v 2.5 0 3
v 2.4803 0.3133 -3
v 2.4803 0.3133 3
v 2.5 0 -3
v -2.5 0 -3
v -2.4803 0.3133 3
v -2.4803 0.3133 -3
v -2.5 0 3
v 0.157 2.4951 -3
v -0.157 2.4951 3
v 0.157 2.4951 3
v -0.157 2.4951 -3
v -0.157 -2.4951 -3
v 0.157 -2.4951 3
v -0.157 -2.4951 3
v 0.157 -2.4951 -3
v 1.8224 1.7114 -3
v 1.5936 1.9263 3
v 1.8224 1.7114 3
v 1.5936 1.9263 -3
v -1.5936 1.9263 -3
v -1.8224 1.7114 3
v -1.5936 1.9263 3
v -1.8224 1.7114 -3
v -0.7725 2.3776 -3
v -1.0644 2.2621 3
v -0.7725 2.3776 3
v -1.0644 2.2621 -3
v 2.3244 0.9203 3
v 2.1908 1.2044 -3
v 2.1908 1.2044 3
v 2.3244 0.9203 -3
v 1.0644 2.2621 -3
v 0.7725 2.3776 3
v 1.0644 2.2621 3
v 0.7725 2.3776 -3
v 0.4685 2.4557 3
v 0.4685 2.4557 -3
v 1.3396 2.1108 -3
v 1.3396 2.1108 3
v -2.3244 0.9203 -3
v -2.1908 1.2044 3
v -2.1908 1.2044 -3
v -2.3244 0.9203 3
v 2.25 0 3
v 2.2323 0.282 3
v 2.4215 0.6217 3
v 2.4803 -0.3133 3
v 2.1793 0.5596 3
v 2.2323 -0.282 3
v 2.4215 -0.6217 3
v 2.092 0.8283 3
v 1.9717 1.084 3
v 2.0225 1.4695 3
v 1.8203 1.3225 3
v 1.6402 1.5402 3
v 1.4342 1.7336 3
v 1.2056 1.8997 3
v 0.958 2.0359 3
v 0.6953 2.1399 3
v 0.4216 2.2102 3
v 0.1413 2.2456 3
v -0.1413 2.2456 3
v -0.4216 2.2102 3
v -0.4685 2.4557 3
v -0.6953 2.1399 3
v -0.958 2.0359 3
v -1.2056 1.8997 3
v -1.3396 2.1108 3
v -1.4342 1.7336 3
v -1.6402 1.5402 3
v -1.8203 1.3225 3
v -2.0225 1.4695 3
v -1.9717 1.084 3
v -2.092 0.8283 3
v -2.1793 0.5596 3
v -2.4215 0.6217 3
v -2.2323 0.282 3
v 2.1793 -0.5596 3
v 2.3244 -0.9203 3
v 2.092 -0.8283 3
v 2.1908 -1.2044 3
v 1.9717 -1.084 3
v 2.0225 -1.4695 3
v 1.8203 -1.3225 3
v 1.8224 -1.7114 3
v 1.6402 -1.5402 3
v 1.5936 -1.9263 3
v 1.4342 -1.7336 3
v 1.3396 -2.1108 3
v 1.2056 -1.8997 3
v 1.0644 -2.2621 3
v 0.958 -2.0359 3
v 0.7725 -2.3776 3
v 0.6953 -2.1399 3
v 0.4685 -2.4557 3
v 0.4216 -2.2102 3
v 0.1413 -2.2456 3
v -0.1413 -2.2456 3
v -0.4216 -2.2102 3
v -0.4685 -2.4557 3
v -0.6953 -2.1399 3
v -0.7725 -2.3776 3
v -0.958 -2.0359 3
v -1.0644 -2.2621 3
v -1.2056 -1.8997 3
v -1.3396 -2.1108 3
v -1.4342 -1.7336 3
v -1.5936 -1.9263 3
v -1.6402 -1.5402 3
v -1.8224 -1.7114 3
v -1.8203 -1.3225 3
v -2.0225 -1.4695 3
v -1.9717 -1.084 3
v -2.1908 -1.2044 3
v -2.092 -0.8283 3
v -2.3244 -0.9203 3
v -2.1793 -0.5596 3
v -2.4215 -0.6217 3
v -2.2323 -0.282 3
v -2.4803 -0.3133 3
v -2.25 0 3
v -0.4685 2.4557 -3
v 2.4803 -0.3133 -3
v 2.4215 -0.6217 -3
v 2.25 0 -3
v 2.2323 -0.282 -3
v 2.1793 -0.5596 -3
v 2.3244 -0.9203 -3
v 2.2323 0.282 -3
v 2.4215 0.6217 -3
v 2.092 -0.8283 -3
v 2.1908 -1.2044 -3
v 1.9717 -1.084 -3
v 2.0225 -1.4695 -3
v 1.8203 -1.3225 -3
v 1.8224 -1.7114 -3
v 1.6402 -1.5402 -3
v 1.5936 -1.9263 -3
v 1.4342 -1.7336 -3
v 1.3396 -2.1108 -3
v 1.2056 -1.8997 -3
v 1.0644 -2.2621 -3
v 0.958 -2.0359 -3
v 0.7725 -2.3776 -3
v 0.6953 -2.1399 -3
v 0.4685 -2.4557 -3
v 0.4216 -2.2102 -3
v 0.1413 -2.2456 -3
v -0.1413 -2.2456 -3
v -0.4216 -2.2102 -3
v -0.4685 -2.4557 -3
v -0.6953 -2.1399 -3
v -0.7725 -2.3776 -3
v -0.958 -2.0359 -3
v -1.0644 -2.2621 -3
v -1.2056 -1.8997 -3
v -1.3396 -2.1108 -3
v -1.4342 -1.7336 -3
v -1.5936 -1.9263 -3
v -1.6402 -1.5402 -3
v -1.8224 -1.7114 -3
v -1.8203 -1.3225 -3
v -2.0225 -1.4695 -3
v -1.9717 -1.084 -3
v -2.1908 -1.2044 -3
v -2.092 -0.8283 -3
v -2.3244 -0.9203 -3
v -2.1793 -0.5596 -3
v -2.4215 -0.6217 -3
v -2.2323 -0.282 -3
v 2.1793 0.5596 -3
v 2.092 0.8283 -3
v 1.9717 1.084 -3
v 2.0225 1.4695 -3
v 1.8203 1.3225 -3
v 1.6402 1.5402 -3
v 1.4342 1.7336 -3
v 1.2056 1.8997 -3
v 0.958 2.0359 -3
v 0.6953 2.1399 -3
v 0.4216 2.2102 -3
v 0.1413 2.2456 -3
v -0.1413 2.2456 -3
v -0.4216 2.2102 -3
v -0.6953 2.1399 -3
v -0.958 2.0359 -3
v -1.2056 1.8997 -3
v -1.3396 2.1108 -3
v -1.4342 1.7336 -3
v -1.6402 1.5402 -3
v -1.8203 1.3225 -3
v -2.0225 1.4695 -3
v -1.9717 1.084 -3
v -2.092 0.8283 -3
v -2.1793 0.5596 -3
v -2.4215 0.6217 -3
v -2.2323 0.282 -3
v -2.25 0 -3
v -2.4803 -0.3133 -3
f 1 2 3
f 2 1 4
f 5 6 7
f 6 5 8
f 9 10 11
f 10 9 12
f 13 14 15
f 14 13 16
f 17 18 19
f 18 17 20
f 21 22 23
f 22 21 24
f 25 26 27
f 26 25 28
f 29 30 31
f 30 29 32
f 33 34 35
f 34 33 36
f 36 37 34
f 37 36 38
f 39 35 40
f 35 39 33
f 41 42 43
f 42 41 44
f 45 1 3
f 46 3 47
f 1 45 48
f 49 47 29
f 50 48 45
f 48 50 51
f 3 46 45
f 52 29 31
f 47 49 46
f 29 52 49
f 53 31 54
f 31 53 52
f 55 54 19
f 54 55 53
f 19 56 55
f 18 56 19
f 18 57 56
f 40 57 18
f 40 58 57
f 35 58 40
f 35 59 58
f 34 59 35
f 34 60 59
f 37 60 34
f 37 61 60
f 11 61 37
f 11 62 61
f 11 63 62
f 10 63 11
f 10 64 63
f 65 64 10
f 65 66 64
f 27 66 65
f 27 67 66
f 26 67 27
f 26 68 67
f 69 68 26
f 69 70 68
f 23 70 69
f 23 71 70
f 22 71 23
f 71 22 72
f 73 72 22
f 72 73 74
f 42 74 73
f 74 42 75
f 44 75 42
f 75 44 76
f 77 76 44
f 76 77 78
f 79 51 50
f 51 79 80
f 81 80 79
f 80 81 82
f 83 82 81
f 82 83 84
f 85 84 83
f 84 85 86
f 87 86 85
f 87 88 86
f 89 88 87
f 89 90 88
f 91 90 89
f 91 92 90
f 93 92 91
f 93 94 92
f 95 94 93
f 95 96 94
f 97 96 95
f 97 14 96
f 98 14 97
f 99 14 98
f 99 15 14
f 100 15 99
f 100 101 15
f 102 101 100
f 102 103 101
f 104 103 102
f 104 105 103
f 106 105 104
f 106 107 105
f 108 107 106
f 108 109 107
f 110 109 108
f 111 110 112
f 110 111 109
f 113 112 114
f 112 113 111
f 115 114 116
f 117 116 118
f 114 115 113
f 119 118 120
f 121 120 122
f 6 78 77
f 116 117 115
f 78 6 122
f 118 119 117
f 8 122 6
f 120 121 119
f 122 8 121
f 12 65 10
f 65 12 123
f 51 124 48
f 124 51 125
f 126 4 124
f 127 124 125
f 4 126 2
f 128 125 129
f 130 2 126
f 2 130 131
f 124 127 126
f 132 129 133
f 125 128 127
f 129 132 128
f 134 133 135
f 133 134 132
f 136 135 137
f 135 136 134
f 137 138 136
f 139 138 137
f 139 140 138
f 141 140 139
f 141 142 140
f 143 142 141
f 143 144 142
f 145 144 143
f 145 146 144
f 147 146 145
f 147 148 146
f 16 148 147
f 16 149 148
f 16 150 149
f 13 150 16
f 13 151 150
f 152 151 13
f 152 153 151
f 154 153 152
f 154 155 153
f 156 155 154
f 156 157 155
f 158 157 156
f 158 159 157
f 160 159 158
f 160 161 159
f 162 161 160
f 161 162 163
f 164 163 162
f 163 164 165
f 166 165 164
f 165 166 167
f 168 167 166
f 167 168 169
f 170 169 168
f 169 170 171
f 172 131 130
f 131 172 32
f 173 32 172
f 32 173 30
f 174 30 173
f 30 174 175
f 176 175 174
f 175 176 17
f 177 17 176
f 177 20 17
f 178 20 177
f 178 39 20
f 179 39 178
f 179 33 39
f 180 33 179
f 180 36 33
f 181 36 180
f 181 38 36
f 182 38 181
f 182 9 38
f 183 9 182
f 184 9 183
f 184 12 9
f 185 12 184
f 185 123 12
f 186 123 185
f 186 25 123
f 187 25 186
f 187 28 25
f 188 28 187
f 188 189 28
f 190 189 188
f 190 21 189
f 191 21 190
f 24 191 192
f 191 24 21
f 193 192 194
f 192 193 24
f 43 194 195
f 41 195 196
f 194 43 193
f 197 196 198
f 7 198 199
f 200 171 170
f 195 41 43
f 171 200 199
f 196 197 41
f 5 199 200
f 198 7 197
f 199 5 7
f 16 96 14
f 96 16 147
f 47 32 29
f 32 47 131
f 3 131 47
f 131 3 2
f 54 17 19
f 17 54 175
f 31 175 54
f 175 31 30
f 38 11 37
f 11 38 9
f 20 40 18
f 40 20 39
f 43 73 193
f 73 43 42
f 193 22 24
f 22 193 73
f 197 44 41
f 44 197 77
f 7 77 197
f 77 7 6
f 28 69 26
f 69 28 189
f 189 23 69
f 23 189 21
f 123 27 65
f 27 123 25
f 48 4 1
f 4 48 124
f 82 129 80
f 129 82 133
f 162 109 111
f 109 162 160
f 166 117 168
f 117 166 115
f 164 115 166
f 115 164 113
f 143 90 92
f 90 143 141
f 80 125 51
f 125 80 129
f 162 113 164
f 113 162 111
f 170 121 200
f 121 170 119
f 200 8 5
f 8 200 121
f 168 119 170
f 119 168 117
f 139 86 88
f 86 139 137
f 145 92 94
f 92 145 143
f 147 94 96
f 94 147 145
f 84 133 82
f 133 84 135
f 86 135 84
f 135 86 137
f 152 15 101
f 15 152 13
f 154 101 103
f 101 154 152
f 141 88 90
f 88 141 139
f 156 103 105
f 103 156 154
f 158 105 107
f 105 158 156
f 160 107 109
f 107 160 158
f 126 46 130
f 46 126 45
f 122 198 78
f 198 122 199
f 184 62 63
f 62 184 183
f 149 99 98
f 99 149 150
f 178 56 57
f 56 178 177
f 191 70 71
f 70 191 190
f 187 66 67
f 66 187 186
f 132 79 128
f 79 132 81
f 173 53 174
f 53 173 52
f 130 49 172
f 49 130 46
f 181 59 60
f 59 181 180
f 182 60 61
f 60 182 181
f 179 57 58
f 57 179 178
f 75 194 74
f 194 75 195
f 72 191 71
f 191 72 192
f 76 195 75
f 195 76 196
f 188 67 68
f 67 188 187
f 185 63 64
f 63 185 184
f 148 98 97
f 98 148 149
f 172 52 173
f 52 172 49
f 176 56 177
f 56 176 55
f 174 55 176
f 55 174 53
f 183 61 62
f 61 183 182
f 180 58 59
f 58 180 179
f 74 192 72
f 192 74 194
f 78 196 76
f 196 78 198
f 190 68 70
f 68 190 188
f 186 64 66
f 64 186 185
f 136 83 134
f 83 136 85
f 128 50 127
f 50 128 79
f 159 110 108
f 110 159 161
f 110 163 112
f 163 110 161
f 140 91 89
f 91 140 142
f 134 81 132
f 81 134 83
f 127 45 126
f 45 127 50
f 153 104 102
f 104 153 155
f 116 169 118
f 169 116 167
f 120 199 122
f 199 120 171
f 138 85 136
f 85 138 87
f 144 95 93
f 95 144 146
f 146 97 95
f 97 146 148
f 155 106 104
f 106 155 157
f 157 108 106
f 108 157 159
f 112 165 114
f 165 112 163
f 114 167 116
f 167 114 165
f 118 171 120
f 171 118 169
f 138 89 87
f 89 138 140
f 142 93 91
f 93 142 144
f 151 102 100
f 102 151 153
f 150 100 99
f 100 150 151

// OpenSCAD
$fn = 50;


difference() {
	union() {
		translate(v = [0, 0, -3.0000000000]) {
			cylinder(h = 6, r = 2.5000000000);
		}
	}
	union() {
		translate(v = [0, 0, -100.0000000000]) {
			cylinder(h = 200, r = 2.2500000000);
		}
	}
}
